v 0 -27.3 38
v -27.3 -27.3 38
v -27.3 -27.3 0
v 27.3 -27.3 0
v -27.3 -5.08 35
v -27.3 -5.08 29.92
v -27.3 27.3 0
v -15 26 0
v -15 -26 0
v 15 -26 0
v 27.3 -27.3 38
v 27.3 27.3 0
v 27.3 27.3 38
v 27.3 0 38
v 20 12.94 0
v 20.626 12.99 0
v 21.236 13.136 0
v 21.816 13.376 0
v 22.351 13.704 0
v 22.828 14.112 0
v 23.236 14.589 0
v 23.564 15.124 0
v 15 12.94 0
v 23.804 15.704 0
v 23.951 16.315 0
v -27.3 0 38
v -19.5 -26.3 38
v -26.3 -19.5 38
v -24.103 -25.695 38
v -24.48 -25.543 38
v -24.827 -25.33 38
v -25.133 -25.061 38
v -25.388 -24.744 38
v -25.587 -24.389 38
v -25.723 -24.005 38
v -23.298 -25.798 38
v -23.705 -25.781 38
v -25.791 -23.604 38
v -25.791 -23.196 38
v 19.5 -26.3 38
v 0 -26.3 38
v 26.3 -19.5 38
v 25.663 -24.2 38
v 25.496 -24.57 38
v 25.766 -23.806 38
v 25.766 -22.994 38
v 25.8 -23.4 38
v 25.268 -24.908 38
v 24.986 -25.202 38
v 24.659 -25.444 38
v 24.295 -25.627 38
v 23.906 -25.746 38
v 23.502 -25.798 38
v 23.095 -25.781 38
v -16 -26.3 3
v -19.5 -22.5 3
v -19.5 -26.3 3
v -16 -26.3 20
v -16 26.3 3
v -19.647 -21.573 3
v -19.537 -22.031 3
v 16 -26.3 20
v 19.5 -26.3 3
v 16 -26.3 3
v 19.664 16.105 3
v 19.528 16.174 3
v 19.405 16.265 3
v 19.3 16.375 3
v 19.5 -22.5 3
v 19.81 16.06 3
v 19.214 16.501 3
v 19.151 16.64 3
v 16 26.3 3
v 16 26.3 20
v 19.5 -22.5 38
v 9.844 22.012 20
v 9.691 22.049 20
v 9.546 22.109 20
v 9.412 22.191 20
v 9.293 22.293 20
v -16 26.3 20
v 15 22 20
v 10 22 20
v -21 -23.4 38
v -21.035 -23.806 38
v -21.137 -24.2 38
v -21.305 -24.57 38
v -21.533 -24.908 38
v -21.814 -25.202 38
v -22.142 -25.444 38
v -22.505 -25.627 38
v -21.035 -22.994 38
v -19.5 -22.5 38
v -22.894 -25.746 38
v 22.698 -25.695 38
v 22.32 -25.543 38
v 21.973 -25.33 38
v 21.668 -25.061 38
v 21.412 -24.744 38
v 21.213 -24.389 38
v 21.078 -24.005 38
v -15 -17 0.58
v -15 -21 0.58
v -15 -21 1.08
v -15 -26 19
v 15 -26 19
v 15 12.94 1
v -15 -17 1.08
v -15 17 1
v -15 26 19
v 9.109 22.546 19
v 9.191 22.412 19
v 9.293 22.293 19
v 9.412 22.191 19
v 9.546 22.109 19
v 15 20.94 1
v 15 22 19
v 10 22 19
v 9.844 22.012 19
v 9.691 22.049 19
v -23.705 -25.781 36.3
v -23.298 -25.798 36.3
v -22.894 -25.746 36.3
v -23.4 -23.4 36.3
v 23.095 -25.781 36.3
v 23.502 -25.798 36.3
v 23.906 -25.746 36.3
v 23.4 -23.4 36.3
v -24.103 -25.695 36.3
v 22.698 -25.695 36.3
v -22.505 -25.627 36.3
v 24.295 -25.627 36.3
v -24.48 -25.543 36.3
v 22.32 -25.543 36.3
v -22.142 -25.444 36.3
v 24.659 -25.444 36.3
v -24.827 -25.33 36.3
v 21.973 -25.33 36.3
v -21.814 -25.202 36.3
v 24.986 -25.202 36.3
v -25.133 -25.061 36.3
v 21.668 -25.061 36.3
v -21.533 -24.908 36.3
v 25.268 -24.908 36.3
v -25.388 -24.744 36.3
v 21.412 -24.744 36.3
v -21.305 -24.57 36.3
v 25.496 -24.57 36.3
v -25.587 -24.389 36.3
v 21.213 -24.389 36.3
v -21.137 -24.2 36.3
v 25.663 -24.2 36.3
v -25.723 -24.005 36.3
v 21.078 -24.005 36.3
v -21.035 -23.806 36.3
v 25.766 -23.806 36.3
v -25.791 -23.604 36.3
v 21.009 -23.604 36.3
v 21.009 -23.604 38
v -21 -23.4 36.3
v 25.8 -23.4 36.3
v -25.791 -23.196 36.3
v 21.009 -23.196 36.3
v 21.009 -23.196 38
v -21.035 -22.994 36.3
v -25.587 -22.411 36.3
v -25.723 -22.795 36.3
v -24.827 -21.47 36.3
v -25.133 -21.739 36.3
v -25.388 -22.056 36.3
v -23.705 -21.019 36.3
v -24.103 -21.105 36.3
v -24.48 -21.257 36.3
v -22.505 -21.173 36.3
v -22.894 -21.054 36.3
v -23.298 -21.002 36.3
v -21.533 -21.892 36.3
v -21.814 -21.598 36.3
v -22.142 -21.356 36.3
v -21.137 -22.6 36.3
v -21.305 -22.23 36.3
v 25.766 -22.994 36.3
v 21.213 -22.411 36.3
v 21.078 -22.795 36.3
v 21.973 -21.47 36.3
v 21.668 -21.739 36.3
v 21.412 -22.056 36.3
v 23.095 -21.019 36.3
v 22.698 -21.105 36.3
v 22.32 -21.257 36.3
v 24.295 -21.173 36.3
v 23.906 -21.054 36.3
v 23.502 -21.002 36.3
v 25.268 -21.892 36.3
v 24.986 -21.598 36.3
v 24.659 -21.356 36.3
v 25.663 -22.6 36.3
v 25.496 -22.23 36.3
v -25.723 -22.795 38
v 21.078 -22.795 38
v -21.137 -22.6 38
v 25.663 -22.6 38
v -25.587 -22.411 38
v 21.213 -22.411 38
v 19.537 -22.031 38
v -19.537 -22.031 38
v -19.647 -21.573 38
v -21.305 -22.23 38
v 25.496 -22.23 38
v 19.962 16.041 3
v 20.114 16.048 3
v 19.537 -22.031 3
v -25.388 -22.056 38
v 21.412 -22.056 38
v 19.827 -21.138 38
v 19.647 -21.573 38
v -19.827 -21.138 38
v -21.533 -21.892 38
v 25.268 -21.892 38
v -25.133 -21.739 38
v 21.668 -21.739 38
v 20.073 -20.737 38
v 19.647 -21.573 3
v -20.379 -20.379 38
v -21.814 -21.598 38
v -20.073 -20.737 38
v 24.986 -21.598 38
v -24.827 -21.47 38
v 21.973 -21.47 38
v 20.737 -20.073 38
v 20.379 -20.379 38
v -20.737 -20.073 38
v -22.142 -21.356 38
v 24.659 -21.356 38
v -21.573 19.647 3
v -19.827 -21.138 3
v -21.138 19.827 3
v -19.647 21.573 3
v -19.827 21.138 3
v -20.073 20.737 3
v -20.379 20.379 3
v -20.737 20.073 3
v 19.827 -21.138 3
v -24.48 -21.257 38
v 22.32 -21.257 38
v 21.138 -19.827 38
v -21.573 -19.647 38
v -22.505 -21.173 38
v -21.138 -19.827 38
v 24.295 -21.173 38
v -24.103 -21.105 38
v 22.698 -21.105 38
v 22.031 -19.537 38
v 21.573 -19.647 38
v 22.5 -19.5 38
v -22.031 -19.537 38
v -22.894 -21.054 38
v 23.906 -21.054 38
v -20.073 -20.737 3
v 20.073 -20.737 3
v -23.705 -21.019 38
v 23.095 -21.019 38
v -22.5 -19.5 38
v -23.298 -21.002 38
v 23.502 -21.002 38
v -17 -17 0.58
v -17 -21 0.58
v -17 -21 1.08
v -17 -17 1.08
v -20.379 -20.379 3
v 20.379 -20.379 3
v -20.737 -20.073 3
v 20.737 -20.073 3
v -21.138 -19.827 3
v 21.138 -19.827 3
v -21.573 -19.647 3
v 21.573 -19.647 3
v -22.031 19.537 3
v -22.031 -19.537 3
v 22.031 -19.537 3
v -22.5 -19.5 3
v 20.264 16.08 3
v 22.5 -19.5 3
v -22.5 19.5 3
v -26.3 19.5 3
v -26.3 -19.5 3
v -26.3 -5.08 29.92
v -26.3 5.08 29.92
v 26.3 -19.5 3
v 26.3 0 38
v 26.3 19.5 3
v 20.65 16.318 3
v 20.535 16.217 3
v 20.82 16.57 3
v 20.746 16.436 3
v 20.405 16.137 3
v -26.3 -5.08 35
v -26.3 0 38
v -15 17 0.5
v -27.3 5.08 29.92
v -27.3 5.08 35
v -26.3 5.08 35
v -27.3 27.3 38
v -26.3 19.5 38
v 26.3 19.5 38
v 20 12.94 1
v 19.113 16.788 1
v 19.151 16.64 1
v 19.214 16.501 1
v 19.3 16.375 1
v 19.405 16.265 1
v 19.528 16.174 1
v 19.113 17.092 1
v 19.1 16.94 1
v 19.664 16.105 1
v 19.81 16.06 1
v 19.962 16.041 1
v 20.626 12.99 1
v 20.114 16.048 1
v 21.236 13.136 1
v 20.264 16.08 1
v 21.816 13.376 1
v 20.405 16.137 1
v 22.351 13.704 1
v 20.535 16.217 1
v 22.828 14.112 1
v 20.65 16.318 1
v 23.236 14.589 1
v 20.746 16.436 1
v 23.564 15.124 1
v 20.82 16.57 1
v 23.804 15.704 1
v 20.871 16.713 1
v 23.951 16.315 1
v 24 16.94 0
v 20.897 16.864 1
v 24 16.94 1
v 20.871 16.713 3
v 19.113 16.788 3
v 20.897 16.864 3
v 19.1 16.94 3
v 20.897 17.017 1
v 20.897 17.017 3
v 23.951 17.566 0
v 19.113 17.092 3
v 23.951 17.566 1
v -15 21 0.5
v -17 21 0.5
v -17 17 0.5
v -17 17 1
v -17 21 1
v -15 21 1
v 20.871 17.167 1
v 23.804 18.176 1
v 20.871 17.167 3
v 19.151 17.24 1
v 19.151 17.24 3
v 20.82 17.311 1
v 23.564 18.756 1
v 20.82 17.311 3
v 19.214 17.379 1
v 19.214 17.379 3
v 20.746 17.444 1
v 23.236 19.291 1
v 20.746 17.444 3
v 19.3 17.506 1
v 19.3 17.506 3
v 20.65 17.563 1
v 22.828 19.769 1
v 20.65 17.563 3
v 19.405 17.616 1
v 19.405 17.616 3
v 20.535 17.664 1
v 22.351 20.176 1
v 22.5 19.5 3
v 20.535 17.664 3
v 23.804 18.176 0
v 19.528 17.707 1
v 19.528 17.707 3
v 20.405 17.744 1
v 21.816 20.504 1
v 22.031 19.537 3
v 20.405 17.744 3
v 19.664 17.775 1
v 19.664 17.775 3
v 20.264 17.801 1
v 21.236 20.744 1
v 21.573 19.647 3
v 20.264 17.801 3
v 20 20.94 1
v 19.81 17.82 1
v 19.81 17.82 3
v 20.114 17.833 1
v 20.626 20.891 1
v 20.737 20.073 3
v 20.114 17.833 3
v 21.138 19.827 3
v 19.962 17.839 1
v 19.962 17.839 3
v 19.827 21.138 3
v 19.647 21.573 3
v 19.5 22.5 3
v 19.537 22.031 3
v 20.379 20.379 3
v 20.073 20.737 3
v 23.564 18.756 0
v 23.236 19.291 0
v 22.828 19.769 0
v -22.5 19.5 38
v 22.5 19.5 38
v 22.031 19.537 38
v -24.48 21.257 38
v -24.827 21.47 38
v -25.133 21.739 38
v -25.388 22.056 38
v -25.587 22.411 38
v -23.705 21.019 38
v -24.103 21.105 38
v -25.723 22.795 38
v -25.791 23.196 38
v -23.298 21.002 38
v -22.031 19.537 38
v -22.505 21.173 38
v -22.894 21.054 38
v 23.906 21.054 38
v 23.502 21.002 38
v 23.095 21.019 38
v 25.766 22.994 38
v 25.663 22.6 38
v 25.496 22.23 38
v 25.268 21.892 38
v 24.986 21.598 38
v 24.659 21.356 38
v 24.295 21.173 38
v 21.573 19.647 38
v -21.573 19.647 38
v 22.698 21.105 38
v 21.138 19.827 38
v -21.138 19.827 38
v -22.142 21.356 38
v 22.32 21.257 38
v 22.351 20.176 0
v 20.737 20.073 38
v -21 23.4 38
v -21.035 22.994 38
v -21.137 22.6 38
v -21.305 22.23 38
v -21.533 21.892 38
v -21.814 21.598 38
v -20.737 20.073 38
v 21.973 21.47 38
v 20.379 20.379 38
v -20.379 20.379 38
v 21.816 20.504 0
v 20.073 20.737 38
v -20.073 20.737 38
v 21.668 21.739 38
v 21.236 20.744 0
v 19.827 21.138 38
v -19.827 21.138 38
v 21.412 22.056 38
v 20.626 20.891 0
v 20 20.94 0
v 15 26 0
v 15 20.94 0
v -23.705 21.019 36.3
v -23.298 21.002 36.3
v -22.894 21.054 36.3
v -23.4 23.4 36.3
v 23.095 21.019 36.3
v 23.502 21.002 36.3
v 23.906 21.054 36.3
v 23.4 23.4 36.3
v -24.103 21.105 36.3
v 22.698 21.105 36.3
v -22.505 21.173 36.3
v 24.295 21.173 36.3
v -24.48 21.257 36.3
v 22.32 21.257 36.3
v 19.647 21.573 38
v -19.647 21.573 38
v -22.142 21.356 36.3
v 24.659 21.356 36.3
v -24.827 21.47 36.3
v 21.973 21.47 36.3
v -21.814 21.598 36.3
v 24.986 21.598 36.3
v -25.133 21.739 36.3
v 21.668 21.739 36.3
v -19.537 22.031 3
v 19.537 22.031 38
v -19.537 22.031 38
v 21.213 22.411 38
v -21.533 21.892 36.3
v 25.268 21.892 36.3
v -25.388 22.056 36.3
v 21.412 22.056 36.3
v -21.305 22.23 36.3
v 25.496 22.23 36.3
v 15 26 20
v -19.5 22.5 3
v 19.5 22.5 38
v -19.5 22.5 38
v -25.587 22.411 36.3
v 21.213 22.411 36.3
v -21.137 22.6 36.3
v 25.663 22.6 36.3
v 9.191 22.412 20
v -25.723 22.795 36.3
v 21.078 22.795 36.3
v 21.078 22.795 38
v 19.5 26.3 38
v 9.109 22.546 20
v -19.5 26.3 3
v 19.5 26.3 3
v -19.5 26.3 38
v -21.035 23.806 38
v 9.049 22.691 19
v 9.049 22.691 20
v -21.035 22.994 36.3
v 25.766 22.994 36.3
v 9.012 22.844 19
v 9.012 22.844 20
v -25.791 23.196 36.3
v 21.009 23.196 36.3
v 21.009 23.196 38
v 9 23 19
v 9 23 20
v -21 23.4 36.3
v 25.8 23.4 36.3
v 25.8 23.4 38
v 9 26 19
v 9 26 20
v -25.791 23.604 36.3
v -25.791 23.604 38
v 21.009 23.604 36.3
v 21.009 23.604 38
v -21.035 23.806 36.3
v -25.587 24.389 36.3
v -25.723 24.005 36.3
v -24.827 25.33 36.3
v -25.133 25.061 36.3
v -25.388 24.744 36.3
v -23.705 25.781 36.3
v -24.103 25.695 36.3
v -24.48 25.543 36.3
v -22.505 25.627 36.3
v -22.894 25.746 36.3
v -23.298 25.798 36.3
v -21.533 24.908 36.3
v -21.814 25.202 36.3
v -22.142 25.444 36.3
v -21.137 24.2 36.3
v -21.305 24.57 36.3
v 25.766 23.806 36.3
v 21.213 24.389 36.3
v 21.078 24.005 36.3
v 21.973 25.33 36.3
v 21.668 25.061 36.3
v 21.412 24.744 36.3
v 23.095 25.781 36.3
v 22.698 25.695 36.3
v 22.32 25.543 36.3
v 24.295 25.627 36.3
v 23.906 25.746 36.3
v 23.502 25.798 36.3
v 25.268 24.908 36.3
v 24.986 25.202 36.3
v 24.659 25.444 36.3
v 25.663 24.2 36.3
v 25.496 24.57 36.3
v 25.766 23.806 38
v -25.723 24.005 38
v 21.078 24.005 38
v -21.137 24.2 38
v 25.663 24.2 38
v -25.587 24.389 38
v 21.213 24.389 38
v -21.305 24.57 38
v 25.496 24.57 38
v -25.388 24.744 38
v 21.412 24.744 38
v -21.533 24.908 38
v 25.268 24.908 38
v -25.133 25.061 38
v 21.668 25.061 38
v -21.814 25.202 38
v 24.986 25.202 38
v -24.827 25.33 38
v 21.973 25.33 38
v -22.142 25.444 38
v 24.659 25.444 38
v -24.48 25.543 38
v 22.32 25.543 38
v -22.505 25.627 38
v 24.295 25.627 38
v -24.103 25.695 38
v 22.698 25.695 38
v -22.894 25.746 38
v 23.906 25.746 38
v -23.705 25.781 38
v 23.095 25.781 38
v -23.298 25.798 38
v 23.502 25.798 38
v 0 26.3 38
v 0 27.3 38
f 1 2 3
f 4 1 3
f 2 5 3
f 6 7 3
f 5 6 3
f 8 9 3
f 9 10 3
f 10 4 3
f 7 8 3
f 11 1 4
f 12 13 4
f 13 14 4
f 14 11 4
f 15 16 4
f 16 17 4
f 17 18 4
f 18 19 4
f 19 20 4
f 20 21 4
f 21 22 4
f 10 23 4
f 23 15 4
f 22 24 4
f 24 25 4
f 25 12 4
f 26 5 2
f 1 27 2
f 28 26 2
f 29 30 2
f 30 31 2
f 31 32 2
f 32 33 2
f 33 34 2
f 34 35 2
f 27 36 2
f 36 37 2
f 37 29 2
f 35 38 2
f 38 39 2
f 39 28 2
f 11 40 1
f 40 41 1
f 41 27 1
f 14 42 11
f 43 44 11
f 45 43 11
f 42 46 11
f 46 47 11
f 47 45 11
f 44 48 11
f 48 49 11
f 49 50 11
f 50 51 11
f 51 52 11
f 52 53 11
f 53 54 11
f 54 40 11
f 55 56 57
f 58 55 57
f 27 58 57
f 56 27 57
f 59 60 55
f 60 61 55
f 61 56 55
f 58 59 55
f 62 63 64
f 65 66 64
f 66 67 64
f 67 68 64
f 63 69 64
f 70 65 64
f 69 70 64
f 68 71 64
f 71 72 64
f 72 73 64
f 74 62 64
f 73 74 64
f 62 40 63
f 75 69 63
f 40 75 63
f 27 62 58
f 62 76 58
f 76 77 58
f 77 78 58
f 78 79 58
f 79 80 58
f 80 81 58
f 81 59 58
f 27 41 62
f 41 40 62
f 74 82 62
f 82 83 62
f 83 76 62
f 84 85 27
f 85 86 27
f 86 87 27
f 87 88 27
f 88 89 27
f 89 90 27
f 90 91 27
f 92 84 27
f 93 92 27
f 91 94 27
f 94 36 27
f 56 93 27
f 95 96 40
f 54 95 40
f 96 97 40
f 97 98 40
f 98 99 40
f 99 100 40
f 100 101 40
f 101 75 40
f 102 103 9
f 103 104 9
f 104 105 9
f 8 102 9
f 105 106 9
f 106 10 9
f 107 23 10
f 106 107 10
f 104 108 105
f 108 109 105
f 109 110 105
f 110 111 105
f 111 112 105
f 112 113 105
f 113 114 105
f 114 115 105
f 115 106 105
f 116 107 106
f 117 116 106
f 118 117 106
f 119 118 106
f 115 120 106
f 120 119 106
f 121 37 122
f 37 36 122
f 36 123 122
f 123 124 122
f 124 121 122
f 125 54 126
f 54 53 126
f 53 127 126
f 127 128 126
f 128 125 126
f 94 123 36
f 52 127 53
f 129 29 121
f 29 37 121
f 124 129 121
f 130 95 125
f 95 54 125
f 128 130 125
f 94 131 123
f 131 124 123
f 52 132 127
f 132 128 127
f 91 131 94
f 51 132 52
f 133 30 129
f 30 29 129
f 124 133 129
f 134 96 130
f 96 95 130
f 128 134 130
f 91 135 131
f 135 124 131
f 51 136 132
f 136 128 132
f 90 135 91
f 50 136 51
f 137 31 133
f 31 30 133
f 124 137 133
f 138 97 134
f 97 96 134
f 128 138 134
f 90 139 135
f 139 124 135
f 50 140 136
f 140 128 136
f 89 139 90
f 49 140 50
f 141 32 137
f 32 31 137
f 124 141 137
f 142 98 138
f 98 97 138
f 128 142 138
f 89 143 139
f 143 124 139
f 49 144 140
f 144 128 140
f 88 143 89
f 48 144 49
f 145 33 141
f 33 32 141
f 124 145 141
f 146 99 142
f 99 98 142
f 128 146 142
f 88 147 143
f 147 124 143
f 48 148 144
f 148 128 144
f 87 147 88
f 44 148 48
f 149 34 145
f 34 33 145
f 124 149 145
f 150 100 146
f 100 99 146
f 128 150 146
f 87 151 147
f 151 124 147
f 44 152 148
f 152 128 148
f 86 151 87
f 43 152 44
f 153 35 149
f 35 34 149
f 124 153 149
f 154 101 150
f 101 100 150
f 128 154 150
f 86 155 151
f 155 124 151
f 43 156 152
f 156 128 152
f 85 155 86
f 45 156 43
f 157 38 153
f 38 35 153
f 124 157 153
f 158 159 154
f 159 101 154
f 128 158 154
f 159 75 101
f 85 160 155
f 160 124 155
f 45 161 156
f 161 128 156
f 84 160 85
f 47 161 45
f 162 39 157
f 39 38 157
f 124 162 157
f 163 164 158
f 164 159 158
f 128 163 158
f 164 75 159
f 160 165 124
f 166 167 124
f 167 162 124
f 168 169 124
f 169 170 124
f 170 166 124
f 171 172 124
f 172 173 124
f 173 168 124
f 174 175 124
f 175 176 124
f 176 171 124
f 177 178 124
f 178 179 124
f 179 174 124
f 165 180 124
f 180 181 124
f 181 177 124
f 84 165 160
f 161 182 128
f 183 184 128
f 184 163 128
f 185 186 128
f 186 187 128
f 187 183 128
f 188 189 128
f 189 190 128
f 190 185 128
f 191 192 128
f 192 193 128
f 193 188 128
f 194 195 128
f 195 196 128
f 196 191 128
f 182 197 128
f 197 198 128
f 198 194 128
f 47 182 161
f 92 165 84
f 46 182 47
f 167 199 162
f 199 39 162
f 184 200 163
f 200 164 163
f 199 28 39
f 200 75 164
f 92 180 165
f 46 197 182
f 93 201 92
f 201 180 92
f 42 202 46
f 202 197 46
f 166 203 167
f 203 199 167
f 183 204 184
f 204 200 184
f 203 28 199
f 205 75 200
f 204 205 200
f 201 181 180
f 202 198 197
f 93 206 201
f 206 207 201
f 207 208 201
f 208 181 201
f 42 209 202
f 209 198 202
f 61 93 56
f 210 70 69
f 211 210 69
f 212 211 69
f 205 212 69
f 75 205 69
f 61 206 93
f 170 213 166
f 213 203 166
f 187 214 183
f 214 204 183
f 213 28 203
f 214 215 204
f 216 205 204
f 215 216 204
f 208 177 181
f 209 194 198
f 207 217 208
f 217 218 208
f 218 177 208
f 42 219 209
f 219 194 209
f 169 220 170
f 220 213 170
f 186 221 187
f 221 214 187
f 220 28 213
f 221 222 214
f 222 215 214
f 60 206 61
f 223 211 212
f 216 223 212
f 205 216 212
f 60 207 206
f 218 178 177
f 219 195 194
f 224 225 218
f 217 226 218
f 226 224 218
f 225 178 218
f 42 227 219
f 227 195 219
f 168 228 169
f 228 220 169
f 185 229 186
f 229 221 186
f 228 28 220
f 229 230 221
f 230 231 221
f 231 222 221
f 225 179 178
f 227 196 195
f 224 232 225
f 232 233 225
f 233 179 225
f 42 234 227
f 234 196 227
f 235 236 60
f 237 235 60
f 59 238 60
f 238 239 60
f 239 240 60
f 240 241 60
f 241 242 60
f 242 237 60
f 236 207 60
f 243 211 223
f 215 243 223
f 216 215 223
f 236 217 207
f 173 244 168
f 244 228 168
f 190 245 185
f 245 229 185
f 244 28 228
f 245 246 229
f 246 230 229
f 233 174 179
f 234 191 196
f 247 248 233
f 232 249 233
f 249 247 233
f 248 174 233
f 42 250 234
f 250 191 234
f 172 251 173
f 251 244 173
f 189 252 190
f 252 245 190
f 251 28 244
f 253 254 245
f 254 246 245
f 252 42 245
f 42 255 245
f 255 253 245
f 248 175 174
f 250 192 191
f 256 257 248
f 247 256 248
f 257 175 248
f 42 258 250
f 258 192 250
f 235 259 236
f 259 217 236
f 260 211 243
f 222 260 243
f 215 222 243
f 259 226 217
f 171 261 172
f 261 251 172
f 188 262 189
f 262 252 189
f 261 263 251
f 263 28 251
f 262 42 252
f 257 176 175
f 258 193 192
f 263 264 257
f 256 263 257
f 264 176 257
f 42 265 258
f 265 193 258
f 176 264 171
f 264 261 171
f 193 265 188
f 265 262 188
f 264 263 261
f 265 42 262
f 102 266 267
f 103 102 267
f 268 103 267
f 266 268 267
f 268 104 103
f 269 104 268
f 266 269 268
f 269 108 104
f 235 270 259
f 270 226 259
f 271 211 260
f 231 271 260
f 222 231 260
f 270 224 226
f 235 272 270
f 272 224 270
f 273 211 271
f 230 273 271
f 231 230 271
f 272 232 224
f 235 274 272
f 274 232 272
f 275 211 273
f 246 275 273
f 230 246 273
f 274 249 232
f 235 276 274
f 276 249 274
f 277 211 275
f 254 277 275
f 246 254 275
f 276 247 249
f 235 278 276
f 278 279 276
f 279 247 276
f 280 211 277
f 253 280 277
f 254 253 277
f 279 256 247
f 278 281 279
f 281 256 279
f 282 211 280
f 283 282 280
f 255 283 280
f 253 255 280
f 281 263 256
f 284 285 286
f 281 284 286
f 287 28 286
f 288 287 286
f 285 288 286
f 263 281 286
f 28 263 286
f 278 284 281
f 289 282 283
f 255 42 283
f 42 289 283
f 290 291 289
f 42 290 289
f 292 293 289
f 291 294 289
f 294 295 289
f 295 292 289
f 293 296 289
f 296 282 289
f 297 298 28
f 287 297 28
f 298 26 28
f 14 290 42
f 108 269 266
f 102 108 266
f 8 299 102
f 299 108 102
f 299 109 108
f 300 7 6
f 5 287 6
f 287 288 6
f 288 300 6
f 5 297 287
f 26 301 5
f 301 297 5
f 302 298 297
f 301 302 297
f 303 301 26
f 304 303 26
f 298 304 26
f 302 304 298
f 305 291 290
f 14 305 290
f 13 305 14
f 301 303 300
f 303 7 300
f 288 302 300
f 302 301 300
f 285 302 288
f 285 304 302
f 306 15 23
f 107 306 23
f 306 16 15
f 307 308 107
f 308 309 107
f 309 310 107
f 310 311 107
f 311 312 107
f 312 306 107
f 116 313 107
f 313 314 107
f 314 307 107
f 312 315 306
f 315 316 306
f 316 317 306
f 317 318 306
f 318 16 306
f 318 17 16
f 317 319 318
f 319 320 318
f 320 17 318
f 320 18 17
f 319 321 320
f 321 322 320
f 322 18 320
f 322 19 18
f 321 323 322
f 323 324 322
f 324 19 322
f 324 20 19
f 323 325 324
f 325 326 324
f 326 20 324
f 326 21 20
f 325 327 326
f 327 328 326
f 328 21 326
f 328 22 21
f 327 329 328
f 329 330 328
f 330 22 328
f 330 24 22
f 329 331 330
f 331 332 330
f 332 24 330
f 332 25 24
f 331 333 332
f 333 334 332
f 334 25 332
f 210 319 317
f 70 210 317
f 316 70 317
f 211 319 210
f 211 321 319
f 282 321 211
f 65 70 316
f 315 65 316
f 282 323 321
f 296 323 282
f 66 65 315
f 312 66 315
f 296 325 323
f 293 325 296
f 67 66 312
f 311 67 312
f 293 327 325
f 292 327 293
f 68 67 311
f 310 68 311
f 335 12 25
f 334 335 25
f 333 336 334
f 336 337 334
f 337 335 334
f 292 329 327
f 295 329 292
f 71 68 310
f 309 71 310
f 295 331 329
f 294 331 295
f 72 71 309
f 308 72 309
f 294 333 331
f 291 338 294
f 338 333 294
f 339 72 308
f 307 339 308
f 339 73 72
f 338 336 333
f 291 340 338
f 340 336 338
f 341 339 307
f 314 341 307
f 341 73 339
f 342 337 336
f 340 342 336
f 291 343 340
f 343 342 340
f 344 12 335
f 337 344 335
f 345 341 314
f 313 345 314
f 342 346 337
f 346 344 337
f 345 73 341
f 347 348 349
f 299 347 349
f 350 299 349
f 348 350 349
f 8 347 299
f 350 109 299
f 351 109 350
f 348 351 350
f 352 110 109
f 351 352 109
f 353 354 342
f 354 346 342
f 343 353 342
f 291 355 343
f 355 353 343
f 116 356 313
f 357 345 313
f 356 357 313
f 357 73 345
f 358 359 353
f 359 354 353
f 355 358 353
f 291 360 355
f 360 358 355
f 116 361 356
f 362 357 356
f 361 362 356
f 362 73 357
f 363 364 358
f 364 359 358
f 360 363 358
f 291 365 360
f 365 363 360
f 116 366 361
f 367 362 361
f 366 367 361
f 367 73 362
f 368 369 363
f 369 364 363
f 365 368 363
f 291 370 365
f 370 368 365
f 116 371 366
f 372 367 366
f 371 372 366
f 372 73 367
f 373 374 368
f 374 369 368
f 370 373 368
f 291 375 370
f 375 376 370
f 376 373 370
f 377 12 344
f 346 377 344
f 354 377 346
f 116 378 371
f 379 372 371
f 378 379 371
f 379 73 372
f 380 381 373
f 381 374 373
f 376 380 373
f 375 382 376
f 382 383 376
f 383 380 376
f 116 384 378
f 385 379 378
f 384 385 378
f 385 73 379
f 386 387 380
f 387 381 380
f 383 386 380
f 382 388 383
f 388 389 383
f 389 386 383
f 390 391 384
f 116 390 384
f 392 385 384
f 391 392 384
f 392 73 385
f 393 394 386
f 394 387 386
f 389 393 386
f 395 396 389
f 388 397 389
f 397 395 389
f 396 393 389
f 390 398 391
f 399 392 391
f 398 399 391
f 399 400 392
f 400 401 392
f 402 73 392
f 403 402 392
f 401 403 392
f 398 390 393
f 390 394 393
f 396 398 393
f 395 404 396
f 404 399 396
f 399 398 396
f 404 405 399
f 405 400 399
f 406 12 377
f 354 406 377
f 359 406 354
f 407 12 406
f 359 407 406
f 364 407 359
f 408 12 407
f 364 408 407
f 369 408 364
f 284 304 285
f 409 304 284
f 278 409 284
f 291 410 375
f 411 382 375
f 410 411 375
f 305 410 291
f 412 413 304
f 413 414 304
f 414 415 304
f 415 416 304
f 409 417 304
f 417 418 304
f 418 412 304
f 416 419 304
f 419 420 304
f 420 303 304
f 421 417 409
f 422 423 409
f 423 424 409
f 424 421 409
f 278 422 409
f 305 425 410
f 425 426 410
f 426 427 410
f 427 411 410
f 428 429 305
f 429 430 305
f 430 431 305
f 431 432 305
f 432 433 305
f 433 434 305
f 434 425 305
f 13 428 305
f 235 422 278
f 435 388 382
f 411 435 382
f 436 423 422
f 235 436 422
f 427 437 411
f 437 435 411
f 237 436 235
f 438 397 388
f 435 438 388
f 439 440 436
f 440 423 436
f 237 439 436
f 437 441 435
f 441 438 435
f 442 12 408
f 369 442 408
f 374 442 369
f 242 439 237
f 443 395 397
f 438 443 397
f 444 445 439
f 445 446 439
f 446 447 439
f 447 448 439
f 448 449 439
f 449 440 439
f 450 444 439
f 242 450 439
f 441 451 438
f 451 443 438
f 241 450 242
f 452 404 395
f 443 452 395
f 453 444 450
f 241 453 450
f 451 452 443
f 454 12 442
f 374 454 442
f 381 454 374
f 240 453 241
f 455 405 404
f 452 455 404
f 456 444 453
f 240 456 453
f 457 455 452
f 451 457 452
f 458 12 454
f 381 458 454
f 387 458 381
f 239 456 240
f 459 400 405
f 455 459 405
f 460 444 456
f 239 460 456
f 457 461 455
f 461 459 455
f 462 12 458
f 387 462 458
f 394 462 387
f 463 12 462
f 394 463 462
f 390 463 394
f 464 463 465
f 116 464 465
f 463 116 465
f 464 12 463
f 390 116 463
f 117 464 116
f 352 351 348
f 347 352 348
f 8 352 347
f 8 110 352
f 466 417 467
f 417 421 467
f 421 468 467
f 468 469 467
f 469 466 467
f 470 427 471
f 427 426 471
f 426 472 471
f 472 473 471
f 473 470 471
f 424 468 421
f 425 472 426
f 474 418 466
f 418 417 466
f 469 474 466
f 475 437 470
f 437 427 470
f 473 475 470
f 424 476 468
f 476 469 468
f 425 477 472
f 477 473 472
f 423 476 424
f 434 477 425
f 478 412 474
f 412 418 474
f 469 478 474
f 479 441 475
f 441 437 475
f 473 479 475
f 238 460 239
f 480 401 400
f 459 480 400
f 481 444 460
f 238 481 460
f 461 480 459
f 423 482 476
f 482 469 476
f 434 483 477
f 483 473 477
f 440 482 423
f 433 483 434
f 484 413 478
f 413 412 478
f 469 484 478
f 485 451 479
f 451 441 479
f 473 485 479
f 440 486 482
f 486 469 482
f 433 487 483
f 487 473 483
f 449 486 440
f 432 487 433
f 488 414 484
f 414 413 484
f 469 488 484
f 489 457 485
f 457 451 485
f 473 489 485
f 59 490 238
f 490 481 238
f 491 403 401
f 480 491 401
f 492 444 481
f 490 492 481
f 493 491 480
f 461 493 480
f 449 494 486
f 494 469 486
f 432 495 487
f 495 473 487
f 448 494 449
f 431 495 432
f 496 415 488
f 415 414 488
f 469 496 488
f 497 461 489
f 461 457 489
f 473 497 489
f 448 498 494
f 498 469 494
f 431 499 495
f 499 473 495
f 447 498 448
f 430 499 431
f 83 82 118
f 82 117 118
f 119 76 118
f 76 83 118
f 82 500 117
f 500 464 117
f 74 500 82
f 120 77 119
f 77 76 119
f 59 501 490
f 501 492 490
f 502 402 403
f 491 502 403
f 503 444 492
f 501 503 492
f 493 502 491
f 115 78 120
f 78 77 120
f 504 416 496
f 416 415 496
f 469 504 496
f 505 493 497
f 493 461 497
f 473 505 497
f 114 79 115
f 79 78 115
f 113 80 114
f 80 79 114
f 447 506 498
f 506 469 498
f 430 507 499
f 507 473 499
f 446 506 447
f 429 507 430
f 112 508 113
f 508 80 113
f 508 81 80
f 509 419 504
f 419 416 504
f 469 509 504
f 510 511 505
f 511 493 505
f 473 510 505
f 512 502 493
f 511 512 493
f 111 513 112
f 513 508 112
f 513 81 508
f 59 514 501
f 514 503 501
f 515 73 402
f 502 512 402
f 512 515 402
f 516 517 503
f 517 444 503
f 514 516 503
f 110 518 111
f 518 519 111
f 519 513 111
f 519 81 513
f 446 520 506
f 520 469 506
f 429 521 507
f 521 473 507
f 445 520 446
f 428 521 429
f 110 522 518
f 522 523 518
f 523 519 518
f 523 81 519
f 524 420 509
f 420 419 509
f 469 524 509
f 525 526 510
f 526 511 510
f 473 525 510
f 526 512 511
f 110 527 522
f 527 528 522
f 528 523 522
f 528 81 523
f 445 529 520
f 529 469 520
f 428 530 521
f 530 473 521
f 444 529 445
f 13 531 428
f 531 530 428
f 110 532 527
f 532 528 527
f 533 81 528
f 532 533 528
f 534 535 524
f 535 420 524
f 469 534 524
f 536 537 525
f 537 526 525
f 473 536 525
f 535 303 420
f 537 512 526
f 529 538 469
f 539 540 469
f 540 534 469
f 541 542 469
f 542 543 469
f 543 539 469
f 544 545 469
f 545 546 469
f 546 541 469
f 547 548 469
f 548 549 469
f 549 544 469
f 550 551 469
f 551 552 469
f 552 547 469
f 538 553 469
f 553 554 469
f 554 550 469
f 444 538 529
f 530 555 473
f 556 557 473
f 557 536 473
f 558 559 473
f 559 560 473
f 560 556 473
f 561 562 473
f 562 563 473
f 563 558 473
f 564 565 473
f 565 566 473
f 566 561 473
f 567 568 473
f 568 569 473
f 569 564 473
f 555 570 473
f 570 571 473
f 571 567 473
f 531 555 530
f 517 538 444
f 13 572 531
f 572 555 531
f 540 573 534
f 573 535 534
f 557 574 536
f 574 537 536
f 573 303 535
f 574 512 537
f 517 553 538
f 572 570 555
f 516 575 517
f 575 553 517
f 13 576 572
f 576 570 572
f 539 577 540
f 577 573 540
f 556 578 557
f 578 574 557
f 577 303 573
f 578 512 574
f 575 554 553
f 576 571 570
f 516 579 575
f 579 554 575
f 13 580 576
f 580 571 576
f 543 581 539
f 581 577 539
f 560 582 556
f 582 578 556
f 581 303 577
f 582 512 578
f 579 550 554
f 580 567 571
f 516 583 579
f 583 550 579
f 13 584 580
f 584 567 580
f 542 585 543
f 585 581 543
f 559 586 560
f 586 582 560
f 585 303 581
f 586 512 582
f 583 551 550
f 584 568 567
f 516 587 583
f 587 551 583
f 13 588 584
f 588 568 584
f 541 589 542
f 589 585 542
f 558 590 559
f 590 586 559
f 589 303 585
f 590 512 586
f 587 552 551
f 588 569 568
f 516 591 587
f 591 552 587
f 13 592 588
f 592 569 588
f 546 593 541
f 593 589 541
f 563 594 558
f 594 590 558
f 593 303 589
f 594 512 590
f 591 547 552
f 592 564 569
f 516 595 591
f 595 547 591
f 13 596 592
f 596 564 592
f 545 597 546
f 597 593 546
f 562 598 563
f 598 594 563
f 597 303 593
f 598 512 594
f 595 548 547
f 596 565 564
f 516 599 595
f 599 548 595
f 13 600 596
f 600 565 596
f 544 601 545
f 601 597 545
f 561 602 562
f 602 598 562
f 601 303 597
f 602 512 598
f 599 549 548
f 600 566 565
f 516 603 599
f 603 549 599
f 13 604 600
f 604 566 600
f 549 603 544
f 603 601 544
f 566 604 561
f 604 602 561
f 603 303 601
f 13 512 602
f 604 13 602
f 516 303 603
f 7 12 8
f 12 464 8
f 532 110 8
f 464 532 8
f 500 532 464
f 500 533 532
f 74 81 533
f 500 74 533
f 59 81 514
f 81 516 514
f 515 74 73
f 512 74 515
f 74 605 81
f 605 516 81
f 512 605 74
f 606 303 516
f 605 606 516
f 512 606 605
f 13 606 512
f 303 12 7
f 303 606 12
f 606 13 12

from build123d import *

# Parameters (mm, degrees)
SKICA1_W                  = 54.6
SKICA1_H                  = 54.6
P_IDAT_VYSUNUT_M2_DEPTH   = 3
SKICA14_W                 = 52.6
SKICA14_H                 = 1
P_IDAT_VYSUNUT_M9_DEPTH   = 35
SKICA19_W                 = 7.8
SKICA19_H                 = 7.8
P_IDAT_VYSUNUT_M10_DEPTH  = 38
SKICA20_R                 = 2.4
ODEBRAT_VYSUNUT_M9_DEPTH  = 1.7
ZAOBLIT1_R                = 3
SKICA25_W                 = 32
SKICA25_H                 = 54.6
P_IDAT_VYSUNUT_M12_DEPTH  = 20
SKICA26_W                 = 30
SKICA26_H                 = 52
ODEBRAT_VYSUNUT_M11_DEPTH = 19
SKICA27_W                 = 5.08
SKICA27_H                 = 10.16
ODEBRAT_VYSUNUT_M12_DEPTH = 1
SKICA28_W                 = 9
SKICA28_H                 = 8
ODEBRAT_VYSUNUT_M13_DEPTH = 1
ZAOBLIT3_R                = 4
SKICA29_W                 = 0.5
SKICA29_H                 = 4
ODEBRAT_VYSUNUT_M14_DEPTH = 2
SKICA30_R                 = 0.9
ODEBRAT_VYSUNUT_M15_DEPTH = 2
SKICA31_W                 = 6
SKICA31_H                 = 4
ODEBRAT_VYSUNUT_M16_DEPTH = 2
ZAOBLIT4_R                = 1


with BuildPart() as part:
    # Skica1 → Přidat vysunutím2 (new body)
    with BuildSketch(Plane.XY):
        Rectangle(SKICA1_W, SKICA1_H)
    extrude(amount=P_IDAT_VYSUNUT_M2_DEPTH)

    # Skica14 → Přidat vysunutím9 (add)
    with BuildSketch(Plane.XY.offset(3)):
        Polygon((27.3, 27.3), (-27.3, 27.3), (-27.3, -27.3), (-26.3, -27.3), (-26.3, -26.3), (-26.3, 26.3), (26.3, 26.3), (26.3, -26.3), (26.3, -27.3), (27.3, -27.3), align=None)
        with Locations((0, -26.8)):
            Rectangle(SKICA14_W, SKICA14_H)
    extrude(amount=P_IDAT_VYSUNUT_M9_DEPTH)

    # Skica19 → Přidat vysunutím10 (add)
    with BuildSketch(Plane(origin=(0, 0, 0), x_dir=(-1, 0, 0), z_dir=(0, 0, -1))):
        with Locations((-23.4, 23.4)):
            Rectangle(SKICA19_W, SKICA19_H)
        with Locations((23.4, 23.4)):
            Rectangle(SKICA19_W, SKICA19_H)
        with Locations((-23.4, -23.4)):
            Rectangle(SKICA19_W, SKICA19_H)
        with Locations((23.4, -23.4)):
            Rectangle(SKICA19_W, SKICA19_H)
    extrude(amount=-P_IDAT_VYSUNUT_M10_DEPTH)

    # Skica20 → Odebrat vysunutím9 (cut)
    with BuildSketch(Plane.XY.offset(38)):
        with Locations((-23.4, -23.4)):
            Circle(SKICA20_R)
        with Locations((-23.4, 23.4)):
            Circle(SKICA20_R)
        with Locations((23.400280565, 23.4)):
            Circle(SKICA20_R)
        with Locations((23.400280565, -23.4)):
            Circle(SKICA20_R)
    extrude(amount=-ODEBRAT_VYSUNUT_M9_DEPTH, mode=Mode.SUBTRACT)

    # Zaoblit1
    zaoblit1_edges = [part.edges().sort_by_distance(p)[0] for p in [
        (-19.5, -19.5, 20.5),
        (19.5, 19.5, 20.5),
        (-19.5, 19.5, 20.5),
        (19.5, -19.5, 20.5),
    ]]
    fillet(zaoblit1_edges, radius=ZAOBLIT1_R)

    # Skica25 → Přidat vysunutím12 (add)
    with BuildSketch(Plane(origin=(0, 0, 0), x_dir=(-1, 0, 0), z_dir=(0, 0, -1))):
        Rectangle(SKICA25_W, SKICA25_H)
    extrude(amount=-P_IDAT_VYSUNUT_M12_DEPTH)

    # Skica26 → Odebrat vysunutím11 (cut)
    with BuildSketch(Plane(origin=(0, 0, 0), x_dir=(-1, 0, 0), z_dir=(0, 0, -1))):
        Rectangle(SKICA26_W, SKICA26_H)
    extrude(amount=-ODEBRAT_VYSUNUT_M11_DEPTH, mode=Mode.SUBTRACT)

    # Skica27 → Odebrat vysunutím12 (cut)
    with BuildSketch(Plane.ZY.offset(27.3)):
        with Locations((32.46, 0)):
            Rectangle(SKICA27_W, SKICA27_H)
    extrude(amount=-ODEBRAT_VYSUNUT_M12_DEPTH, mode=Mode.SUBTRACT)

    # Skica28 → Odebrat vysunutím13 (cut)
    with BuildSketch(Plane(origin=(0, 0, 0), x_dir=(-1, 0, 0), z_dir=(0, 0, -1))):
        with Locations((-19.5, 16.940262317)):
            Rectangle(SKICA28_W, SKICA28_H)
    extrude(amount=-ODEBRAT_VYSUNUT_M13_DEPTH, mode=Mode.SUBTRACT)

    # Zaoblit3
    zaoblit3_edges = [part.edges().sort_by_distance(p)[0] for p in [
        (24, 12.940262317, 0.5),
        (24, 20.940262317, 0.5),
    ]]
    fillet(zaoblit3_edges, radius=ZAOBLIT3_R - 0.0001)  # a hair under: the kernel refuses the full size

    # Skica29 → Odebrat vysunutím14 (cut)
    with BuildSketch(Plane(origin=(-15, 0, 0), x_dir=(0, 0, -1), z_dir=(1, 0, 0))):
        with Locations((-0.75, 19)):
            Rectangle(SKICA29_W, SKICA29_H)
        with Locations((-0.83, -19)):
            Rectangle(SKICA29_W, SKICA29_H)
    extrude(amount=-ODEBRAT_VYSUNUT_M14_DEPTH, mode=Mode.SUBTRACT)

    # Skica30 → Odebrat vysunutím15 (cut)
    with BuildSketch(Plane(origin=(0, 0, 1), x_dir=(-1, 0, 0), z_dir=(0, 0, -1))):
        with Locations((-20, 16.940262317)):
            Circle(SKICA30_R)
    extrude(amount=-ODEBRAT_VYSUNUT_M15_DEPTH, mode=Mode.SUBTRACT)

    # Skica31 → Odebrat vysunutím16 (cut)
    with BuildSketch(Plane(origin=(0, 0, 19), x_dir=(-1, 0, 0), z_dir=(0, 0, -1))):
        with Locations((-12, 24)):
            Rectangle(SKICA31_W, SKICA31_H)
    extrude(amount=-ODEBRAT_VYSUNUT_M16_DEPTH, mode=Mode.SUBTRACT)

    # Zaoblit4
    zaoblit4_edges = [part.edges().sort_by_distance(p)[0] for p in [
        (9, 22, 19.5),
    ]]
    fillet(zaoblit4_edges, radius=ZAOBLIT4_R)


solid = part.part
